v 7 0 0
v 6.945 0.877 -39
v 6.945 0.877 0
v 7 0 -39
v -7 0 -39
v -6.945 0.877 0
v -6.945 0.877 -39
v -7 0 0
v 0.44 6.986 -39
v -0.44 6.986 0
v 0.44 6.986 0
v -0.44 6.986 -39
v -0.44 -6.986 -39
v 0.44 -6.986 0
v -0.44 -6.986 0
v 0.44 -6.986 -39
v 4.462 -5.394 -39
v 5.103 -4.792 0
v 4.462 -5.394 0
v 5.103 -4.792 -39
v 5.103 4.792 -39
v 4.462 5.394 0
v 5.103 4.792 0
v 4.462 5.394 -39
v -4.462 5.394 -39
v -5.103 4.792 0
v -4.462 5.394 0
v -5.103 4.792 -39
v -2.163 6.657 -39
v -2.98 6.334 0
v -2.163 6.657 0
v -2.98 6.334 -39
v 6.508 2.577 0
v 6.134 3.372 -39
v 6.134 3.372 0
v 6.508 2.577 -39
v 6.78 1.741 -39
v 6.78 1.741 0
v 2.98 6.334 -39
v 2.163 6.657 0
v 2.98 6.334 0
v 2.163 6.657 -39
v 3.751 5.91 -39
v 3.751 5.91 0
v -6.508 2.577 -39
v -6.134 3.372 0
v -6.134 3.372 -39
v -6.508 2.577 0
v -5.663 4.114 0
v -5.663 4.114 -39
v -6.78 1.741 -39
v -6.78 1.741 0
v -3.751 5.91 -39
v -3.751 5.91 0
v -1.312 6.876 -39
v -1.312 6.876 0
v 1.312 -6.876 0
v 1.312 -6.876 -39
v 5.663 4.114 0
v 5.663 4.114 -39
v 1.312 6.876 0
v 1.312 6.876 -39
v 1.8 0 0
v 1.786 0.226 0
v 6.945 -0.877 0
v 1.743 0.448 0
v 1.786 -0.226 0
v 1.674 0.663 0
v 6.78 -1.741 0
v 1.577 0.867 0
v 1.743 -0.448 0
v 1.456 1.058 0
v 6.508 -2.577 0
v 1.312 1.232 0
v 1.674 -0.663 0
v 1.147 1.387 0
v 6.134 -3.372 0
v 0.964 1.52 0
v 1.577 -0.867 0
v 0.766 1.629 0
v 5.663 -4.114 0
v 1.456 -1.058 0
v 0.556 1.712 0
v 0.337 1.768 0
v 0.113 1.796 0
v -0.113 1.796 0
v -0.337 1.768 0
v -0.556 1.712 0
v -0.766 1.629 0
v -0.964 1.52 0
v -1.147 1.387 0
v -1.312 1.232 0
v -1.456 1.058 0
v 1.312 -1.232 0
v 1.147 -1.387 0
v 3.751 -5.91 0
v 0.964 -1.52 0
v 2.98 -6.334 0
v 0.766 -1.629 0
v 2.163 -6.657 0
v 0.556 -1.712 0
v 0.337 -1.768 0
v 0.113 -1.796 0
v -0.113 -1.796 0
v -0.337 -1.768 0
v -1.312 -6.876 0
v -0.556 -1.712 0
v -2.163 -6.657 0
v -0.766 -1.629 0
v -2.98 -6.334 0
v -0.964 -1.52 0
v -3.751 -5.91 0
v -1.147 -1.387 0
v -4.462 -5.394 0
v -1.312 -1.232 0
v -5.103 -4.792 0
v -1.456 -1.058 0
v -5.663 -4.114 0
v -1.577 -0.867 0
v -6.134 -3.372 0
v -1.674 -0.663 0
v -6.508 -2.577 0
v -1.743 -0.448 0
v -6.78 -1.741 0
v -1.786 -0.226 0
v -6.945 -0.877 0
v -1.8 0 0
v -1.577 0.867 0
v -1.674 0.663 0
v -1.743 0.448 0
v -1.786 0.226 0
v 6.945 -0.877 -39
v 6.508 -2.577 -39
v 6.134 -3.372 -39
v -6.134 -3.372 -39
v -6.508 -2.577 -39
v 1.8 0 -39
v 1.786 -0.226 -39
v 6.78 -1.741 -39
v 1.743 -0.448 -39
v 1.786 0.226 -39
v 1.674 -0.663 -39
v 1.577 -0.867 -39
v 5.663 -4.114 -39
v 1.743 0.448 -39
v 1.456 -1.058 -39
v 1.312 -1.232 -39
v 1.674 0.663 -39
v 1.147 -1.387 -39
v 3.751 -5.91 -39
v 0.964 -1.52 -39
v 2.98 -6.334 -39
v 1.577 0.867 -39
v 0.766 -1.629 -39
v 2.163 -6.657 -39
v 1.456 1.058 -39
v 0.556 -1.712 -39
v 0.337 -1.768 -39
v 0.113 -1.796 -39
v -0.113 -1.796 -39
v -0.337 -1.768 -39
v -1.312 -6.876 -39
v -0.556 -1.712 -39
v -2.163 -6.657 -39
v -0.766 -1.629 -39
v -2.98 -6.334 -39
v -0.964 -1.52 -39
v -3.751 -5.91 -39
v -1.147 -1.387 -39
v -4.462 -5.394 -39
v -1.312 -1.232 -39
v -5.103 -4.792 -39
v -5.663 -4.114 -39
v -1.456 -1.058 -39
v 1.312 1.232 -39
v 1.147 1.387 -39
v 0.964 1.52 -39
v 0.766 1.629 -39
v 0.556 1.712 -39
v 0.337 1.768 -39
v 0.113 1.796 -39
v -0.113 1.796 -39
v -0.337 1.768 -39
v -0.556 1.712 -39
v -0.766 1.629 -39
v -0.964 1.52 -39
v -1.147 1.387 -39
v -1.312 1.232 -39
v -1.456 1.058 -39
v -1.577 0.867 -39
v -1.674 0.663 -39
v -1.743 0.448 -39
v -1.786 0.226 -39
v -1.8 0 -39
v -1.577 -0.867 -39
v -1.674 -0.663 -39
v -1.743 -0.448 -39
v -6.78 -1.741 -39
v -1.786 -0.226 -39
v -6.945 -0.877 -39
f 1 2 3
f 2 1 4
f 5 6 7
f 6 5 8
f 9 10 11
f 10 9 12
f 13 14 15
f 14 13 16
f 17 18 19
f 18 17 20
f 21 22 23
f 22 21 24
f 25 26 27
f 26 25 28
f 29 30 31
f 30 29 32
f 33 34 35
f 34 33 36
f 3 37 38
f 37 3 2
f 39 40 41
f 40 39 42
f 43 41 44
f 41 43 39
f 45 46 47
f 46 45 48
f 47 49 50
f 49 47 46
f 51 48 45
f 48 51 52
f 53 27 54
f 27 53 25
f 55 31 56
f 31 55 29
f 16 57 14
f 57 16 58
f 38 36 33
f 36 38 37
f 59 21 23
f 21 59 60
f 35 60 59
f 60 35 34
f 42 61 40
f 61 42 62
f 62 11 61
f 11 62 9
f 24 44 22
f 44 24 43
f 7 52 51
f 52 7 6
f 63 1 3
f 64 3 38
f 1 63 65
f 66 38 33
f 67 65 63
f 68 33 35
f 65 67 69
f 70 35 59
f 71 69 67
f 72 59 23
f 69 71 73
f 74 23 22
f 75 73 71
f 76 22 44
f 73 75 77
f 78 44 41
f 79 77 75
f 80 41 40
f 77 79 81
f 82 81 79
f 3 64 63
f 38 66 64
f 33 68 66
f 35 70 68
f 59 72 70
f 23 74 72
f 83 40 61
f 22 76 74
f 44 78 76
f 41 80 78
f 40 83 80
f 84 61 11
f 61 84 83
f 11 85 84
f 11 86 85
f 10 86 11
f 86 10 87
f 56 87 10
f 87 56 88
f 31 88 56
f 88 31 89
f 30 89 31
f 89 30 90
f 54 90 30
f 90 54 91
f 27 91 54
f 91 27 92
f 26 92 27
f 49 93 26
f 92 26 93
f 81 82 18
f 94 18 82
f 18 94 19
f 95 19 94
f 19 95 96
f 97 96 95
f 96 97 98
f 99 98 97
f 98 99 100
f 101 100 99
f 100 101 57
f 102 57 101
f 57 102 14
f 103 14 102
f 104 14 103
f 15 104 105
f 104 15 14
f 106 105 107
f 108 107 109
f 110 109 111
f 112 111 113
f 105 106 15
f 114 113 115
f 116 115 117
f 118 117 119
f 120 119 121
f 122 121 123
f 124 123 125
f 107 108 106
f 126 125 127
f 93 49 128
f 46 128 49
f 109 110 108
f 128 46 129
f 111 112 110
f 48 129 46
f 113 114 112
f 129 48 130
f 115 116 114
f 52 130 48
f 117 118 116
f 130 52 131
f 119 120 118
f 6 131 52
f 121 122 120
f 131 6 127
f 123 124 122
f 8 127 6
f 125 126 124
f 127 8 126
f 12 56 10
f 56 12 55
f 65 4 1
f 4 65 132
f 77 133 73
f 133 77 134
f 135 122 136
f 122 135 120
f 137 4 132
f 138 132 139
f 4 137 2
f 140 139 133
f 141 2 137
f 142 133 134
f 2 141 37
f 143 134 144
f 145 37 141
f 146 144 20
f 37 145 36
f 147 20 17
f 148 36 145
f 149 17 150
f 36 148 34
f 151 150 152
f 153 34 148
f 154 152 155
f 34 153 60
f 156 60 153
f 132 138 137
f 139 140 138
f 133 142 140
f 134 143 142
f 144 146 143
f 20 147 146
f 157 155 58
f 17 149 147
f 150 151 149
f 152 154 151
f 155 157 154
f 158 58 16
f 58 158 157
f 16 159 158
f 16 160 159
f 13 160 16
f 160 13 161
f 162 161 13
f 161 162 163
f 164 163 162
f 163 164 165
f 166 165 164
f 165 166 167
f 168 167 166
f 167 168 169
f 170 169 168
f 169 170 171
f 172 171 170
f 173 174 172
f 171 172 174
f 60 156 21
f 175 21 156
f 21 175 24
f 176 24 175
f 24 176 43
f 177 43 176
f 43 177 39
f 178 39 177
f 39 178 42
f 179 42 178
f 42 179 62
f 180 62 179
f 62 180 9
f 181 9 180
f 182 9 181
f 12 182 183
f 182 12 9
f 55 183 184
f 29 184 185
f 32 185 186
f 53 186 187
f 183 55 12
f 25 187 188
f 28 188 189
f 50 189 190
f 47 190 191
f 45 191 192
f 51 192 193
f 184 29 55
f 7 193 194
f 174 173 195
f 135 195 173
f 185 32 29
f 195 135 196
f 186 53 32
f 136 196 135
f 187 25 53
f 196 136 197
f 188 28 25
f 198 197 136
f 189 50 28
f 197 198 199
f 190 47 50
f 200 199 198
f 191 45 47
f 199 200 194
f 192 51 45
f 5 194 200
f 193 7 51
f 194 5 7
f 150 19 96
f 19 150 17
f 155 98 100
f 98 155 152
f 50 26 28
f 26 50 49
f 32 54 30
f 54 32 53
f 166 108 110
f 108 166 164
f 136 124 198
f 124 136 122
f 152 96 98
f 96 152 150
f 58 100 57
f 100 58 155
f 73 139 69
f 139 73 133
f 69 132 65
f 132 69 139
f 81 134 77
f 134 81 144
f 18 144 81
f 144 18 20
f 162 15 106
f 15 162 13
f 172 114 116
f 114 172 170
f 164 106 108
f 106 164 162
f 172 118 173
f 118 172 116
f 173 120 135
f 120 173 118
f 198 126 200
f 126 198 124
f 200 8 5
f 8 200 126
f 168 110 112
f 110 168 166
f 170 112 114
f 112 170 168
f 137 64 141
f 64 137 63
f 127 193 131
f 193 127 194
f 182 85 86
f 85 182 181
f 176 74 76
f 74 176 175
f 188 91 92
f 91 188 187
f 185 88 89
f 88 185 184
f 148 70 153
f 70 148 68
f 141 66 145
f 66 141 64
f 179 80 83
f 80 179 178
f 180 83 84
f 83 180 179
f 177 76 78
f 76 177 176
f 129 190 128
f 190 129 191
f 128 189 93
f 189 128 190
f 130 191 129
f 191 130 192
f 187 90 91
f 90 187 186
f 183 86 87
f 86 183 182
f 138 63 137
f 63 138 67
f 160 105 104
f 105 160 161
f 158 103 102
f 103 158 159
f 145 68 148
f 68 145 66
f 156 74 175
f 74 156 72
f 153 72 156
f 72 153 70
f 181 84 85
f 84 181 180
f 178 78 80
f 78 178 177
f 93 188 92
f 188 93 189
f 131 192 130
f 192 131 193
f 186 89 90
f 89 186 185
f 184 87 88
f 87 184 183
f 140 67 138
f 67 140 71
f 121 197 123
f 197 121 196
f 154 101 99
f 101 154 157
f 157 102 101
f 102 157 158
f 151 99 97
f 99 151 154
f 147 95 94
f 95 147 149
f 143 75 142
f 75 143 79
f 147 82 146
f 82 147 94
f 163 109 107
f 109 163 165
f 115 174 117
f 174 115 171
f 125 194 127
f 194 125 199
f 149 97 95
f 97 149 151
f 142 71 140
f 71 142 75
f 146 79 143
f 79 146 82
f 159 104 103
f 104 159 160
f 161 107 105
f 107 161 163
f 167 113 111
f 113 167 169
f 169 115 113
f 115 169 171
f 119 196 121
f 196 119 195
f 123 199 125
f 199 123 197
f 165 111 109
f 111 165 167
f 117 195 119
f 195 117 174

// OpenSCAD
$fn = 50;


difference() {
	union() {
		translate(v = [0, 0, -39.0000000000]) {
			cylinder(h = 39, r = 7.0000000000);
		}
		cylinder(h = 0, r = 13.0000000000);
	}
	union() {
		#translate(v = [0, 0, -39]) {
			cylinder(h = 39, r = 1.8000000000);
		}
	}
}
